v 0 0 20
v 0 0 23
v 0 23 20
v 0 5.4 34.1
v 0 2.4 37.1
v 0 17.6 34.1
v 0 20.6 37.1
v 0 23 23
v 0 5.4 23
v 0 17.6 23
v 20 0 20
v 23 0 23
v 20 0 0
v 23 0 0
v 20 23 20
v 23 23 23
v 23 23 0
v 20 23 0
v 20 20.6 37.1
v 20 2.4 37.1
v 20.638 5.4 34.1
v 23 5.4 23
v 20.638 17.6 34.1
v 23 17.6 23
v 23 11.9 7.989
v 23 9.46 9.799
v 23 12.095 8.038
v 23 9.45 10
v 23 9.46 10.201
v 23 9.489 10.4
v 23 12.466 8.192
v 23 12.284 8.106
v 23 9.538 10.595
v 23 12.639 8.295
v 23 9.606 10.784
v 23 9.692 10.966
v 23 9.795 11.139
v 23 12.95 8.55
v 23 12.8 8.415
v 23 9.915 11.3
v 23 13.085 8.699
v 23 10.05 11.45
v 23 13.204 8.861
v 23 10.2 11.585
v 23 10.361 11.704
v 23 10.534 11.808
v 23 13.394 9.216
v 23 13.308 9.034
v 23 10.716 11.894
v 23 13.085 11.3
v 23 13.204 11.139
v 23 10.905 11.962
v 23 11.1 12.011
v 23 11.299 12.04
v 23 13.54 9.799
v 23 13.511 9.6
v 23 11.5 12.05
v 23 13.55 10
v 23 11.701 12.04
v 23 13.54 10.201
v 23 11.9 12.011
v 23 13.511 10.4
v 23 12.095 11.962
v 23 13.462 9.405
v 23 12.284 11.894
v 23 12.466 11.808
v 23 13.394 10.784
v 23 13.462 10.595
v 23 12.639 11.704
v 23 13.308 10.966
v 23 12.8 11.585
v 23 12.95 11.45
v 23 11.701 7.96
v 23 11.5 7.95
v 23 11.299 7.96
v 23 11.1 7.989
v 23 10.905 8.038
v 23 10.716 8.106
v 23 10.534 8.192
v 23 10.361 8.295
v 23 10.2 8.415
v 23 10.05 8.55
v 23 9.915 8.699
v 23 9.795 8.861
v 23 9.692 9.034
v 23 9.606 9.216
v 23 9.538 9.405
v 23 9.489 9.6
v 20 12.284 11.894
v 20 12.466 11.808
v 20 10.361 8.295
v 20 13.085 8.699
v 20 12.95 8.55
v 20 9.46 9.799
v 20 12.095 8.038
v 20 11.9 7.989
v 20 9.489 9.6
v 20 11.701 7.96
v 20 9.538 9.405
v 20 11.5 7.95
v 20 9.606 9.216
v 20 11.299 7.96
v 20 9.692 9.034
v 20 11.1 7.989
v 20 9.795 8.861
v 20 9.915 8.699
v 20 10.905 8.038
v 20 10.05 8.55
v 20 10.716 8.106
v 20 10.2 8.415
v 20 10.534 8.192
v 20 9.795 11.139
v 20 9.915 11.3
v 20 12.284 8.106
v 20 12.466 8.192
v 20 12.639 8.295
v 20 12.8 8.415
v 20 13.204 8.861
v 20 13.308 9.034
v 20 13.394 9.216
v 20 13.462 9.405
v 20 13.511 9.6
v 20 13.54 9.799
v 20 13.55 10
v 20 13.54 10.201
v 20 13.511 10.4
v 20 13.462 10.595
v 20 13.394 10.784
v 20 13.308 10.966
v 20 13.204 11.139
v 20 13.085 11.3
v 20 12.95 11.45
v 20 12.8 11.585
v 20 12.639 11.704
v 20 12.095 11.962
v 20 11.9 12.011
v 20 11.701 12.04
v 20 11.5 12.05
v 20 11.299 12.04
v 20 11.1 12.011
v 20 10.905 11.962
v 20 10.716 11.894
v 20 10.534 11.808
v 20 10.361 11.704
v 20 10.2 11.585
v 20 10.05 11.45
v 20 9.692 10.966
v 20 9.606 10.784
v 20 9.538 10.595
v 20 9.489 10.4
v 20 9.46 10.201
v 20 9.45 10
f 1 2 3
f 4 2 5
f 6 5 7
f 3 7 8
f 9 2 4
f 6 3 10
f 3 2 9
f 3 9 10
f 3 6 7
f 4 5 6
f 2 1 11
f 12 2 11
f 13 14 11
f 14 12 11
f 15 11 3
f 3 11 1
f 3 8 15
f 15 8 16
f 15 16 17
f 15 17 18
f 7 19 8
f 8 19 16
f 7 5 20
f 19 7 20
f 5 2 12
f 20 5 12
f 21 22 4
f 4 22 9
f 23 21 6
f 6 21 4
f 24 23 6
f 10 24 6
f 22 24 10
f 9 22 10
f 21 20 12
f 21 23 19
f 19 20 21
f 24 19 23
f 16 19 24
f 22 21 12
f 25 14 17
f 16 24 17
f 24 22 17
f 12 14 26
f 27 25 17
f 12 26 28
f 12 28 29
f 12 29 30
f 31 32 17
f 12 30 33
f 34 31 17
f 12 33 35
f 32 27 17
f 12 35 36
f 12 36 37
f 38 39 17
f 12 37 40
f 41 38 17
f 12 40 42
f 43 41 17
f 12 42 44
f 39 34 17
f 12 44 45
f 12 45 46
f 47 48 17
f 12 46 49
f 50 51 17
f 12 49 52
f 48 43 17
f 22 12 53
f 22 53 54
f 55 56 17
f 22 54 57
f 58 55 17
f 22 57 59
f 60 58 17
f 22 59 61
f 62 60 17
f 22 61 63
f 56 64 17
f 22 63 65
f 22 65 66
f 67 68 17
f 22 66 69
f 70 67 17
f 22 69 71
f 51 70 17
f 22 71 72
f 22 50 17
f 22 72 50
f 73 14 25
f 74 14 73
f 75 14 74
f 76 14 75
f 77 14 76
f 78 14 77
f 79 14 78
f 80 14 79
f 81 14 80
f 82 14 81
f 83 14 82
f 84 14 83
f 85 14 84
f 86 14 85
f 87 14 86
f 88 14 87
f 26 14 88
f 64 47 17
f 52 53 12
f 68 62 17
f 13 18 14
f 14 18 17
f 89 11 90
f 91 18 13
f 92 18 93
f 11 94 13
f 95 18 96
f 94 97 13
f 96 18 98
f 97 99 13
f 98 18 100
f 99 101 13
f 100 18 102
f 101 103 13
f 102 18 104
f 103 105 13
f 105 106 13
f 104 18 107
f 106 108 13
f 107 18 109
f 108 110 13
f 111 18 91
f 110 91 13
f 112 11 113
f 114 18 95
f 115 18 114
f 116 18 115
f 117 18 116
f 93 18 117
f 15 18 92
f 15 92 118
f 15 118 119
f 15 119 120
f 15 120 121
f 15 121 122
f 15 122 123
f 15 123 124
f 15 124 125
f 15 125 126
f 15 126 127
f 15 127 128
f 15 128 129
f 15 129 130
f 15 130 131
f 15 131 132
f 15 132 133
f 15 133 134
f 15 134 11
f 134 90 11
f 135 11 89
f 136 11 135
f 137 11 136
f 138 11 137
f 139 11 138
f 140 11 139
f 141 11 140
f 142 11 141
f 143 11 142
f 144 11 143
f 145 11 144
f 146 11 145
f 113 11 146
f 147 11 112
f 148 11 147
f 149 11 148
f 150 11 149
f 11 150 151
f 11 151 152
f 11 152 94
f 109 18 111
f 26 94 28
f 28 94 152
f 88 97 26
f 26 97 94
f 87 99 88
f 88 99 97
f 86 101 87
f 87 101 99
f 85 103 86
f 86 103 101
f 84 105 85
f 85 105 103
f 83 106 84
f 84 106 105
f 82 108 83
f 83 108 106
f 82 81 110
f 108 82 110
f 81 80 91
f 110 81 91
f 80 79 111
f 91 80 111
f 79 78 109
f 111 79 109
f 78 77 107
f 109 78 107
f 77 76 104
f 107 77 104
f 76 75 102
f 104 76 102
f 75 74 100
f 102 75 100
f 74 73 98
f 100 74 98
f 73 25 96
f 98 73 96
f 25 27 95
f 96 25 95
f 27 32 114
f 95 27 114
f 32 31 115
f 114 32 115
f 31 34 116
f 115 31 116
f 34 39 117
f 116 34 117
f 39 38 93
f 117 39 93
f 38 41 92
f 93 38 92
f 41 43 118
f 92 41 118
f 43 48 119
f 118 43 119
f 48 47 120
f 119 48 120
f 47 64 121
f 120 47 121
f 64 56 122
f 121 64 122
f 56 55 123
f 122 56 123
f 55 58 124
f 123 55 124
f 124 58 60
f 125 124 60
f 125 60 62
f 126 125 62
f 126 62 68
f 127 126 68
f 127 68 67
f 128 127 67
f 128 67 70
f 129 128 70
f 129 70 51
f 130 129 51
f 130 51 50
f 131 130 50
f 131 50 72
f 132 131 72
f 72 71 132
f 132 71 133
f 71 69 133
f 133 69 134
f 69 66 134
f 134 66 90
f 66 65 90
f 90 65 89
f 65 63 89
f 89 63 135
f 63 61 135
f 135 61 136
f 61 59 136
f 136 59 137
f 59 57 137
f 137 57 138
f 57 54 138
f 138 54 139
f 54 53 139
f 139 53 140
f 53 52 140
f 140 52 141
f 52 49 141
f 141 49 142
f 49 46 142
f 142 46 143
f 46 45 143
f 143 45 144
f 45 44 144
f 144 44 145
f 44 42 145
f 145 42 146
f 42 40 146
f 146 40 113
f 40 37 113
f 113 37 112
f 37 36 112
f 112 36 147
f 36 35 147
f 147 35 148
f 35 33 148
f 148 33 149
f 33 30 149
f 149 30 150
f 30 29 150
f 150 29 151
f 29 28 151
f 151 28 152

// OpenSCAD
//Created by NeoTheFox 
//2014

bolt_radius = 4;

difference()
{
	hull()
	{
		cube([23,23,23]);
		
		translate([0,(23-18.2)/2,23])
		cube([20, 18.2, 14.1]);
	}
	cube([20,30,20]);

	translate([0,(23-12.2)/2,23])
	cube([30, 12.2, 11.1]);

	translate([23/2 + 5, 23/2, 10])
	rotate([0,90,0])
	#cylinder(r=(bolt_radius + 0.1)/2, h=10, $fn=64);
}
